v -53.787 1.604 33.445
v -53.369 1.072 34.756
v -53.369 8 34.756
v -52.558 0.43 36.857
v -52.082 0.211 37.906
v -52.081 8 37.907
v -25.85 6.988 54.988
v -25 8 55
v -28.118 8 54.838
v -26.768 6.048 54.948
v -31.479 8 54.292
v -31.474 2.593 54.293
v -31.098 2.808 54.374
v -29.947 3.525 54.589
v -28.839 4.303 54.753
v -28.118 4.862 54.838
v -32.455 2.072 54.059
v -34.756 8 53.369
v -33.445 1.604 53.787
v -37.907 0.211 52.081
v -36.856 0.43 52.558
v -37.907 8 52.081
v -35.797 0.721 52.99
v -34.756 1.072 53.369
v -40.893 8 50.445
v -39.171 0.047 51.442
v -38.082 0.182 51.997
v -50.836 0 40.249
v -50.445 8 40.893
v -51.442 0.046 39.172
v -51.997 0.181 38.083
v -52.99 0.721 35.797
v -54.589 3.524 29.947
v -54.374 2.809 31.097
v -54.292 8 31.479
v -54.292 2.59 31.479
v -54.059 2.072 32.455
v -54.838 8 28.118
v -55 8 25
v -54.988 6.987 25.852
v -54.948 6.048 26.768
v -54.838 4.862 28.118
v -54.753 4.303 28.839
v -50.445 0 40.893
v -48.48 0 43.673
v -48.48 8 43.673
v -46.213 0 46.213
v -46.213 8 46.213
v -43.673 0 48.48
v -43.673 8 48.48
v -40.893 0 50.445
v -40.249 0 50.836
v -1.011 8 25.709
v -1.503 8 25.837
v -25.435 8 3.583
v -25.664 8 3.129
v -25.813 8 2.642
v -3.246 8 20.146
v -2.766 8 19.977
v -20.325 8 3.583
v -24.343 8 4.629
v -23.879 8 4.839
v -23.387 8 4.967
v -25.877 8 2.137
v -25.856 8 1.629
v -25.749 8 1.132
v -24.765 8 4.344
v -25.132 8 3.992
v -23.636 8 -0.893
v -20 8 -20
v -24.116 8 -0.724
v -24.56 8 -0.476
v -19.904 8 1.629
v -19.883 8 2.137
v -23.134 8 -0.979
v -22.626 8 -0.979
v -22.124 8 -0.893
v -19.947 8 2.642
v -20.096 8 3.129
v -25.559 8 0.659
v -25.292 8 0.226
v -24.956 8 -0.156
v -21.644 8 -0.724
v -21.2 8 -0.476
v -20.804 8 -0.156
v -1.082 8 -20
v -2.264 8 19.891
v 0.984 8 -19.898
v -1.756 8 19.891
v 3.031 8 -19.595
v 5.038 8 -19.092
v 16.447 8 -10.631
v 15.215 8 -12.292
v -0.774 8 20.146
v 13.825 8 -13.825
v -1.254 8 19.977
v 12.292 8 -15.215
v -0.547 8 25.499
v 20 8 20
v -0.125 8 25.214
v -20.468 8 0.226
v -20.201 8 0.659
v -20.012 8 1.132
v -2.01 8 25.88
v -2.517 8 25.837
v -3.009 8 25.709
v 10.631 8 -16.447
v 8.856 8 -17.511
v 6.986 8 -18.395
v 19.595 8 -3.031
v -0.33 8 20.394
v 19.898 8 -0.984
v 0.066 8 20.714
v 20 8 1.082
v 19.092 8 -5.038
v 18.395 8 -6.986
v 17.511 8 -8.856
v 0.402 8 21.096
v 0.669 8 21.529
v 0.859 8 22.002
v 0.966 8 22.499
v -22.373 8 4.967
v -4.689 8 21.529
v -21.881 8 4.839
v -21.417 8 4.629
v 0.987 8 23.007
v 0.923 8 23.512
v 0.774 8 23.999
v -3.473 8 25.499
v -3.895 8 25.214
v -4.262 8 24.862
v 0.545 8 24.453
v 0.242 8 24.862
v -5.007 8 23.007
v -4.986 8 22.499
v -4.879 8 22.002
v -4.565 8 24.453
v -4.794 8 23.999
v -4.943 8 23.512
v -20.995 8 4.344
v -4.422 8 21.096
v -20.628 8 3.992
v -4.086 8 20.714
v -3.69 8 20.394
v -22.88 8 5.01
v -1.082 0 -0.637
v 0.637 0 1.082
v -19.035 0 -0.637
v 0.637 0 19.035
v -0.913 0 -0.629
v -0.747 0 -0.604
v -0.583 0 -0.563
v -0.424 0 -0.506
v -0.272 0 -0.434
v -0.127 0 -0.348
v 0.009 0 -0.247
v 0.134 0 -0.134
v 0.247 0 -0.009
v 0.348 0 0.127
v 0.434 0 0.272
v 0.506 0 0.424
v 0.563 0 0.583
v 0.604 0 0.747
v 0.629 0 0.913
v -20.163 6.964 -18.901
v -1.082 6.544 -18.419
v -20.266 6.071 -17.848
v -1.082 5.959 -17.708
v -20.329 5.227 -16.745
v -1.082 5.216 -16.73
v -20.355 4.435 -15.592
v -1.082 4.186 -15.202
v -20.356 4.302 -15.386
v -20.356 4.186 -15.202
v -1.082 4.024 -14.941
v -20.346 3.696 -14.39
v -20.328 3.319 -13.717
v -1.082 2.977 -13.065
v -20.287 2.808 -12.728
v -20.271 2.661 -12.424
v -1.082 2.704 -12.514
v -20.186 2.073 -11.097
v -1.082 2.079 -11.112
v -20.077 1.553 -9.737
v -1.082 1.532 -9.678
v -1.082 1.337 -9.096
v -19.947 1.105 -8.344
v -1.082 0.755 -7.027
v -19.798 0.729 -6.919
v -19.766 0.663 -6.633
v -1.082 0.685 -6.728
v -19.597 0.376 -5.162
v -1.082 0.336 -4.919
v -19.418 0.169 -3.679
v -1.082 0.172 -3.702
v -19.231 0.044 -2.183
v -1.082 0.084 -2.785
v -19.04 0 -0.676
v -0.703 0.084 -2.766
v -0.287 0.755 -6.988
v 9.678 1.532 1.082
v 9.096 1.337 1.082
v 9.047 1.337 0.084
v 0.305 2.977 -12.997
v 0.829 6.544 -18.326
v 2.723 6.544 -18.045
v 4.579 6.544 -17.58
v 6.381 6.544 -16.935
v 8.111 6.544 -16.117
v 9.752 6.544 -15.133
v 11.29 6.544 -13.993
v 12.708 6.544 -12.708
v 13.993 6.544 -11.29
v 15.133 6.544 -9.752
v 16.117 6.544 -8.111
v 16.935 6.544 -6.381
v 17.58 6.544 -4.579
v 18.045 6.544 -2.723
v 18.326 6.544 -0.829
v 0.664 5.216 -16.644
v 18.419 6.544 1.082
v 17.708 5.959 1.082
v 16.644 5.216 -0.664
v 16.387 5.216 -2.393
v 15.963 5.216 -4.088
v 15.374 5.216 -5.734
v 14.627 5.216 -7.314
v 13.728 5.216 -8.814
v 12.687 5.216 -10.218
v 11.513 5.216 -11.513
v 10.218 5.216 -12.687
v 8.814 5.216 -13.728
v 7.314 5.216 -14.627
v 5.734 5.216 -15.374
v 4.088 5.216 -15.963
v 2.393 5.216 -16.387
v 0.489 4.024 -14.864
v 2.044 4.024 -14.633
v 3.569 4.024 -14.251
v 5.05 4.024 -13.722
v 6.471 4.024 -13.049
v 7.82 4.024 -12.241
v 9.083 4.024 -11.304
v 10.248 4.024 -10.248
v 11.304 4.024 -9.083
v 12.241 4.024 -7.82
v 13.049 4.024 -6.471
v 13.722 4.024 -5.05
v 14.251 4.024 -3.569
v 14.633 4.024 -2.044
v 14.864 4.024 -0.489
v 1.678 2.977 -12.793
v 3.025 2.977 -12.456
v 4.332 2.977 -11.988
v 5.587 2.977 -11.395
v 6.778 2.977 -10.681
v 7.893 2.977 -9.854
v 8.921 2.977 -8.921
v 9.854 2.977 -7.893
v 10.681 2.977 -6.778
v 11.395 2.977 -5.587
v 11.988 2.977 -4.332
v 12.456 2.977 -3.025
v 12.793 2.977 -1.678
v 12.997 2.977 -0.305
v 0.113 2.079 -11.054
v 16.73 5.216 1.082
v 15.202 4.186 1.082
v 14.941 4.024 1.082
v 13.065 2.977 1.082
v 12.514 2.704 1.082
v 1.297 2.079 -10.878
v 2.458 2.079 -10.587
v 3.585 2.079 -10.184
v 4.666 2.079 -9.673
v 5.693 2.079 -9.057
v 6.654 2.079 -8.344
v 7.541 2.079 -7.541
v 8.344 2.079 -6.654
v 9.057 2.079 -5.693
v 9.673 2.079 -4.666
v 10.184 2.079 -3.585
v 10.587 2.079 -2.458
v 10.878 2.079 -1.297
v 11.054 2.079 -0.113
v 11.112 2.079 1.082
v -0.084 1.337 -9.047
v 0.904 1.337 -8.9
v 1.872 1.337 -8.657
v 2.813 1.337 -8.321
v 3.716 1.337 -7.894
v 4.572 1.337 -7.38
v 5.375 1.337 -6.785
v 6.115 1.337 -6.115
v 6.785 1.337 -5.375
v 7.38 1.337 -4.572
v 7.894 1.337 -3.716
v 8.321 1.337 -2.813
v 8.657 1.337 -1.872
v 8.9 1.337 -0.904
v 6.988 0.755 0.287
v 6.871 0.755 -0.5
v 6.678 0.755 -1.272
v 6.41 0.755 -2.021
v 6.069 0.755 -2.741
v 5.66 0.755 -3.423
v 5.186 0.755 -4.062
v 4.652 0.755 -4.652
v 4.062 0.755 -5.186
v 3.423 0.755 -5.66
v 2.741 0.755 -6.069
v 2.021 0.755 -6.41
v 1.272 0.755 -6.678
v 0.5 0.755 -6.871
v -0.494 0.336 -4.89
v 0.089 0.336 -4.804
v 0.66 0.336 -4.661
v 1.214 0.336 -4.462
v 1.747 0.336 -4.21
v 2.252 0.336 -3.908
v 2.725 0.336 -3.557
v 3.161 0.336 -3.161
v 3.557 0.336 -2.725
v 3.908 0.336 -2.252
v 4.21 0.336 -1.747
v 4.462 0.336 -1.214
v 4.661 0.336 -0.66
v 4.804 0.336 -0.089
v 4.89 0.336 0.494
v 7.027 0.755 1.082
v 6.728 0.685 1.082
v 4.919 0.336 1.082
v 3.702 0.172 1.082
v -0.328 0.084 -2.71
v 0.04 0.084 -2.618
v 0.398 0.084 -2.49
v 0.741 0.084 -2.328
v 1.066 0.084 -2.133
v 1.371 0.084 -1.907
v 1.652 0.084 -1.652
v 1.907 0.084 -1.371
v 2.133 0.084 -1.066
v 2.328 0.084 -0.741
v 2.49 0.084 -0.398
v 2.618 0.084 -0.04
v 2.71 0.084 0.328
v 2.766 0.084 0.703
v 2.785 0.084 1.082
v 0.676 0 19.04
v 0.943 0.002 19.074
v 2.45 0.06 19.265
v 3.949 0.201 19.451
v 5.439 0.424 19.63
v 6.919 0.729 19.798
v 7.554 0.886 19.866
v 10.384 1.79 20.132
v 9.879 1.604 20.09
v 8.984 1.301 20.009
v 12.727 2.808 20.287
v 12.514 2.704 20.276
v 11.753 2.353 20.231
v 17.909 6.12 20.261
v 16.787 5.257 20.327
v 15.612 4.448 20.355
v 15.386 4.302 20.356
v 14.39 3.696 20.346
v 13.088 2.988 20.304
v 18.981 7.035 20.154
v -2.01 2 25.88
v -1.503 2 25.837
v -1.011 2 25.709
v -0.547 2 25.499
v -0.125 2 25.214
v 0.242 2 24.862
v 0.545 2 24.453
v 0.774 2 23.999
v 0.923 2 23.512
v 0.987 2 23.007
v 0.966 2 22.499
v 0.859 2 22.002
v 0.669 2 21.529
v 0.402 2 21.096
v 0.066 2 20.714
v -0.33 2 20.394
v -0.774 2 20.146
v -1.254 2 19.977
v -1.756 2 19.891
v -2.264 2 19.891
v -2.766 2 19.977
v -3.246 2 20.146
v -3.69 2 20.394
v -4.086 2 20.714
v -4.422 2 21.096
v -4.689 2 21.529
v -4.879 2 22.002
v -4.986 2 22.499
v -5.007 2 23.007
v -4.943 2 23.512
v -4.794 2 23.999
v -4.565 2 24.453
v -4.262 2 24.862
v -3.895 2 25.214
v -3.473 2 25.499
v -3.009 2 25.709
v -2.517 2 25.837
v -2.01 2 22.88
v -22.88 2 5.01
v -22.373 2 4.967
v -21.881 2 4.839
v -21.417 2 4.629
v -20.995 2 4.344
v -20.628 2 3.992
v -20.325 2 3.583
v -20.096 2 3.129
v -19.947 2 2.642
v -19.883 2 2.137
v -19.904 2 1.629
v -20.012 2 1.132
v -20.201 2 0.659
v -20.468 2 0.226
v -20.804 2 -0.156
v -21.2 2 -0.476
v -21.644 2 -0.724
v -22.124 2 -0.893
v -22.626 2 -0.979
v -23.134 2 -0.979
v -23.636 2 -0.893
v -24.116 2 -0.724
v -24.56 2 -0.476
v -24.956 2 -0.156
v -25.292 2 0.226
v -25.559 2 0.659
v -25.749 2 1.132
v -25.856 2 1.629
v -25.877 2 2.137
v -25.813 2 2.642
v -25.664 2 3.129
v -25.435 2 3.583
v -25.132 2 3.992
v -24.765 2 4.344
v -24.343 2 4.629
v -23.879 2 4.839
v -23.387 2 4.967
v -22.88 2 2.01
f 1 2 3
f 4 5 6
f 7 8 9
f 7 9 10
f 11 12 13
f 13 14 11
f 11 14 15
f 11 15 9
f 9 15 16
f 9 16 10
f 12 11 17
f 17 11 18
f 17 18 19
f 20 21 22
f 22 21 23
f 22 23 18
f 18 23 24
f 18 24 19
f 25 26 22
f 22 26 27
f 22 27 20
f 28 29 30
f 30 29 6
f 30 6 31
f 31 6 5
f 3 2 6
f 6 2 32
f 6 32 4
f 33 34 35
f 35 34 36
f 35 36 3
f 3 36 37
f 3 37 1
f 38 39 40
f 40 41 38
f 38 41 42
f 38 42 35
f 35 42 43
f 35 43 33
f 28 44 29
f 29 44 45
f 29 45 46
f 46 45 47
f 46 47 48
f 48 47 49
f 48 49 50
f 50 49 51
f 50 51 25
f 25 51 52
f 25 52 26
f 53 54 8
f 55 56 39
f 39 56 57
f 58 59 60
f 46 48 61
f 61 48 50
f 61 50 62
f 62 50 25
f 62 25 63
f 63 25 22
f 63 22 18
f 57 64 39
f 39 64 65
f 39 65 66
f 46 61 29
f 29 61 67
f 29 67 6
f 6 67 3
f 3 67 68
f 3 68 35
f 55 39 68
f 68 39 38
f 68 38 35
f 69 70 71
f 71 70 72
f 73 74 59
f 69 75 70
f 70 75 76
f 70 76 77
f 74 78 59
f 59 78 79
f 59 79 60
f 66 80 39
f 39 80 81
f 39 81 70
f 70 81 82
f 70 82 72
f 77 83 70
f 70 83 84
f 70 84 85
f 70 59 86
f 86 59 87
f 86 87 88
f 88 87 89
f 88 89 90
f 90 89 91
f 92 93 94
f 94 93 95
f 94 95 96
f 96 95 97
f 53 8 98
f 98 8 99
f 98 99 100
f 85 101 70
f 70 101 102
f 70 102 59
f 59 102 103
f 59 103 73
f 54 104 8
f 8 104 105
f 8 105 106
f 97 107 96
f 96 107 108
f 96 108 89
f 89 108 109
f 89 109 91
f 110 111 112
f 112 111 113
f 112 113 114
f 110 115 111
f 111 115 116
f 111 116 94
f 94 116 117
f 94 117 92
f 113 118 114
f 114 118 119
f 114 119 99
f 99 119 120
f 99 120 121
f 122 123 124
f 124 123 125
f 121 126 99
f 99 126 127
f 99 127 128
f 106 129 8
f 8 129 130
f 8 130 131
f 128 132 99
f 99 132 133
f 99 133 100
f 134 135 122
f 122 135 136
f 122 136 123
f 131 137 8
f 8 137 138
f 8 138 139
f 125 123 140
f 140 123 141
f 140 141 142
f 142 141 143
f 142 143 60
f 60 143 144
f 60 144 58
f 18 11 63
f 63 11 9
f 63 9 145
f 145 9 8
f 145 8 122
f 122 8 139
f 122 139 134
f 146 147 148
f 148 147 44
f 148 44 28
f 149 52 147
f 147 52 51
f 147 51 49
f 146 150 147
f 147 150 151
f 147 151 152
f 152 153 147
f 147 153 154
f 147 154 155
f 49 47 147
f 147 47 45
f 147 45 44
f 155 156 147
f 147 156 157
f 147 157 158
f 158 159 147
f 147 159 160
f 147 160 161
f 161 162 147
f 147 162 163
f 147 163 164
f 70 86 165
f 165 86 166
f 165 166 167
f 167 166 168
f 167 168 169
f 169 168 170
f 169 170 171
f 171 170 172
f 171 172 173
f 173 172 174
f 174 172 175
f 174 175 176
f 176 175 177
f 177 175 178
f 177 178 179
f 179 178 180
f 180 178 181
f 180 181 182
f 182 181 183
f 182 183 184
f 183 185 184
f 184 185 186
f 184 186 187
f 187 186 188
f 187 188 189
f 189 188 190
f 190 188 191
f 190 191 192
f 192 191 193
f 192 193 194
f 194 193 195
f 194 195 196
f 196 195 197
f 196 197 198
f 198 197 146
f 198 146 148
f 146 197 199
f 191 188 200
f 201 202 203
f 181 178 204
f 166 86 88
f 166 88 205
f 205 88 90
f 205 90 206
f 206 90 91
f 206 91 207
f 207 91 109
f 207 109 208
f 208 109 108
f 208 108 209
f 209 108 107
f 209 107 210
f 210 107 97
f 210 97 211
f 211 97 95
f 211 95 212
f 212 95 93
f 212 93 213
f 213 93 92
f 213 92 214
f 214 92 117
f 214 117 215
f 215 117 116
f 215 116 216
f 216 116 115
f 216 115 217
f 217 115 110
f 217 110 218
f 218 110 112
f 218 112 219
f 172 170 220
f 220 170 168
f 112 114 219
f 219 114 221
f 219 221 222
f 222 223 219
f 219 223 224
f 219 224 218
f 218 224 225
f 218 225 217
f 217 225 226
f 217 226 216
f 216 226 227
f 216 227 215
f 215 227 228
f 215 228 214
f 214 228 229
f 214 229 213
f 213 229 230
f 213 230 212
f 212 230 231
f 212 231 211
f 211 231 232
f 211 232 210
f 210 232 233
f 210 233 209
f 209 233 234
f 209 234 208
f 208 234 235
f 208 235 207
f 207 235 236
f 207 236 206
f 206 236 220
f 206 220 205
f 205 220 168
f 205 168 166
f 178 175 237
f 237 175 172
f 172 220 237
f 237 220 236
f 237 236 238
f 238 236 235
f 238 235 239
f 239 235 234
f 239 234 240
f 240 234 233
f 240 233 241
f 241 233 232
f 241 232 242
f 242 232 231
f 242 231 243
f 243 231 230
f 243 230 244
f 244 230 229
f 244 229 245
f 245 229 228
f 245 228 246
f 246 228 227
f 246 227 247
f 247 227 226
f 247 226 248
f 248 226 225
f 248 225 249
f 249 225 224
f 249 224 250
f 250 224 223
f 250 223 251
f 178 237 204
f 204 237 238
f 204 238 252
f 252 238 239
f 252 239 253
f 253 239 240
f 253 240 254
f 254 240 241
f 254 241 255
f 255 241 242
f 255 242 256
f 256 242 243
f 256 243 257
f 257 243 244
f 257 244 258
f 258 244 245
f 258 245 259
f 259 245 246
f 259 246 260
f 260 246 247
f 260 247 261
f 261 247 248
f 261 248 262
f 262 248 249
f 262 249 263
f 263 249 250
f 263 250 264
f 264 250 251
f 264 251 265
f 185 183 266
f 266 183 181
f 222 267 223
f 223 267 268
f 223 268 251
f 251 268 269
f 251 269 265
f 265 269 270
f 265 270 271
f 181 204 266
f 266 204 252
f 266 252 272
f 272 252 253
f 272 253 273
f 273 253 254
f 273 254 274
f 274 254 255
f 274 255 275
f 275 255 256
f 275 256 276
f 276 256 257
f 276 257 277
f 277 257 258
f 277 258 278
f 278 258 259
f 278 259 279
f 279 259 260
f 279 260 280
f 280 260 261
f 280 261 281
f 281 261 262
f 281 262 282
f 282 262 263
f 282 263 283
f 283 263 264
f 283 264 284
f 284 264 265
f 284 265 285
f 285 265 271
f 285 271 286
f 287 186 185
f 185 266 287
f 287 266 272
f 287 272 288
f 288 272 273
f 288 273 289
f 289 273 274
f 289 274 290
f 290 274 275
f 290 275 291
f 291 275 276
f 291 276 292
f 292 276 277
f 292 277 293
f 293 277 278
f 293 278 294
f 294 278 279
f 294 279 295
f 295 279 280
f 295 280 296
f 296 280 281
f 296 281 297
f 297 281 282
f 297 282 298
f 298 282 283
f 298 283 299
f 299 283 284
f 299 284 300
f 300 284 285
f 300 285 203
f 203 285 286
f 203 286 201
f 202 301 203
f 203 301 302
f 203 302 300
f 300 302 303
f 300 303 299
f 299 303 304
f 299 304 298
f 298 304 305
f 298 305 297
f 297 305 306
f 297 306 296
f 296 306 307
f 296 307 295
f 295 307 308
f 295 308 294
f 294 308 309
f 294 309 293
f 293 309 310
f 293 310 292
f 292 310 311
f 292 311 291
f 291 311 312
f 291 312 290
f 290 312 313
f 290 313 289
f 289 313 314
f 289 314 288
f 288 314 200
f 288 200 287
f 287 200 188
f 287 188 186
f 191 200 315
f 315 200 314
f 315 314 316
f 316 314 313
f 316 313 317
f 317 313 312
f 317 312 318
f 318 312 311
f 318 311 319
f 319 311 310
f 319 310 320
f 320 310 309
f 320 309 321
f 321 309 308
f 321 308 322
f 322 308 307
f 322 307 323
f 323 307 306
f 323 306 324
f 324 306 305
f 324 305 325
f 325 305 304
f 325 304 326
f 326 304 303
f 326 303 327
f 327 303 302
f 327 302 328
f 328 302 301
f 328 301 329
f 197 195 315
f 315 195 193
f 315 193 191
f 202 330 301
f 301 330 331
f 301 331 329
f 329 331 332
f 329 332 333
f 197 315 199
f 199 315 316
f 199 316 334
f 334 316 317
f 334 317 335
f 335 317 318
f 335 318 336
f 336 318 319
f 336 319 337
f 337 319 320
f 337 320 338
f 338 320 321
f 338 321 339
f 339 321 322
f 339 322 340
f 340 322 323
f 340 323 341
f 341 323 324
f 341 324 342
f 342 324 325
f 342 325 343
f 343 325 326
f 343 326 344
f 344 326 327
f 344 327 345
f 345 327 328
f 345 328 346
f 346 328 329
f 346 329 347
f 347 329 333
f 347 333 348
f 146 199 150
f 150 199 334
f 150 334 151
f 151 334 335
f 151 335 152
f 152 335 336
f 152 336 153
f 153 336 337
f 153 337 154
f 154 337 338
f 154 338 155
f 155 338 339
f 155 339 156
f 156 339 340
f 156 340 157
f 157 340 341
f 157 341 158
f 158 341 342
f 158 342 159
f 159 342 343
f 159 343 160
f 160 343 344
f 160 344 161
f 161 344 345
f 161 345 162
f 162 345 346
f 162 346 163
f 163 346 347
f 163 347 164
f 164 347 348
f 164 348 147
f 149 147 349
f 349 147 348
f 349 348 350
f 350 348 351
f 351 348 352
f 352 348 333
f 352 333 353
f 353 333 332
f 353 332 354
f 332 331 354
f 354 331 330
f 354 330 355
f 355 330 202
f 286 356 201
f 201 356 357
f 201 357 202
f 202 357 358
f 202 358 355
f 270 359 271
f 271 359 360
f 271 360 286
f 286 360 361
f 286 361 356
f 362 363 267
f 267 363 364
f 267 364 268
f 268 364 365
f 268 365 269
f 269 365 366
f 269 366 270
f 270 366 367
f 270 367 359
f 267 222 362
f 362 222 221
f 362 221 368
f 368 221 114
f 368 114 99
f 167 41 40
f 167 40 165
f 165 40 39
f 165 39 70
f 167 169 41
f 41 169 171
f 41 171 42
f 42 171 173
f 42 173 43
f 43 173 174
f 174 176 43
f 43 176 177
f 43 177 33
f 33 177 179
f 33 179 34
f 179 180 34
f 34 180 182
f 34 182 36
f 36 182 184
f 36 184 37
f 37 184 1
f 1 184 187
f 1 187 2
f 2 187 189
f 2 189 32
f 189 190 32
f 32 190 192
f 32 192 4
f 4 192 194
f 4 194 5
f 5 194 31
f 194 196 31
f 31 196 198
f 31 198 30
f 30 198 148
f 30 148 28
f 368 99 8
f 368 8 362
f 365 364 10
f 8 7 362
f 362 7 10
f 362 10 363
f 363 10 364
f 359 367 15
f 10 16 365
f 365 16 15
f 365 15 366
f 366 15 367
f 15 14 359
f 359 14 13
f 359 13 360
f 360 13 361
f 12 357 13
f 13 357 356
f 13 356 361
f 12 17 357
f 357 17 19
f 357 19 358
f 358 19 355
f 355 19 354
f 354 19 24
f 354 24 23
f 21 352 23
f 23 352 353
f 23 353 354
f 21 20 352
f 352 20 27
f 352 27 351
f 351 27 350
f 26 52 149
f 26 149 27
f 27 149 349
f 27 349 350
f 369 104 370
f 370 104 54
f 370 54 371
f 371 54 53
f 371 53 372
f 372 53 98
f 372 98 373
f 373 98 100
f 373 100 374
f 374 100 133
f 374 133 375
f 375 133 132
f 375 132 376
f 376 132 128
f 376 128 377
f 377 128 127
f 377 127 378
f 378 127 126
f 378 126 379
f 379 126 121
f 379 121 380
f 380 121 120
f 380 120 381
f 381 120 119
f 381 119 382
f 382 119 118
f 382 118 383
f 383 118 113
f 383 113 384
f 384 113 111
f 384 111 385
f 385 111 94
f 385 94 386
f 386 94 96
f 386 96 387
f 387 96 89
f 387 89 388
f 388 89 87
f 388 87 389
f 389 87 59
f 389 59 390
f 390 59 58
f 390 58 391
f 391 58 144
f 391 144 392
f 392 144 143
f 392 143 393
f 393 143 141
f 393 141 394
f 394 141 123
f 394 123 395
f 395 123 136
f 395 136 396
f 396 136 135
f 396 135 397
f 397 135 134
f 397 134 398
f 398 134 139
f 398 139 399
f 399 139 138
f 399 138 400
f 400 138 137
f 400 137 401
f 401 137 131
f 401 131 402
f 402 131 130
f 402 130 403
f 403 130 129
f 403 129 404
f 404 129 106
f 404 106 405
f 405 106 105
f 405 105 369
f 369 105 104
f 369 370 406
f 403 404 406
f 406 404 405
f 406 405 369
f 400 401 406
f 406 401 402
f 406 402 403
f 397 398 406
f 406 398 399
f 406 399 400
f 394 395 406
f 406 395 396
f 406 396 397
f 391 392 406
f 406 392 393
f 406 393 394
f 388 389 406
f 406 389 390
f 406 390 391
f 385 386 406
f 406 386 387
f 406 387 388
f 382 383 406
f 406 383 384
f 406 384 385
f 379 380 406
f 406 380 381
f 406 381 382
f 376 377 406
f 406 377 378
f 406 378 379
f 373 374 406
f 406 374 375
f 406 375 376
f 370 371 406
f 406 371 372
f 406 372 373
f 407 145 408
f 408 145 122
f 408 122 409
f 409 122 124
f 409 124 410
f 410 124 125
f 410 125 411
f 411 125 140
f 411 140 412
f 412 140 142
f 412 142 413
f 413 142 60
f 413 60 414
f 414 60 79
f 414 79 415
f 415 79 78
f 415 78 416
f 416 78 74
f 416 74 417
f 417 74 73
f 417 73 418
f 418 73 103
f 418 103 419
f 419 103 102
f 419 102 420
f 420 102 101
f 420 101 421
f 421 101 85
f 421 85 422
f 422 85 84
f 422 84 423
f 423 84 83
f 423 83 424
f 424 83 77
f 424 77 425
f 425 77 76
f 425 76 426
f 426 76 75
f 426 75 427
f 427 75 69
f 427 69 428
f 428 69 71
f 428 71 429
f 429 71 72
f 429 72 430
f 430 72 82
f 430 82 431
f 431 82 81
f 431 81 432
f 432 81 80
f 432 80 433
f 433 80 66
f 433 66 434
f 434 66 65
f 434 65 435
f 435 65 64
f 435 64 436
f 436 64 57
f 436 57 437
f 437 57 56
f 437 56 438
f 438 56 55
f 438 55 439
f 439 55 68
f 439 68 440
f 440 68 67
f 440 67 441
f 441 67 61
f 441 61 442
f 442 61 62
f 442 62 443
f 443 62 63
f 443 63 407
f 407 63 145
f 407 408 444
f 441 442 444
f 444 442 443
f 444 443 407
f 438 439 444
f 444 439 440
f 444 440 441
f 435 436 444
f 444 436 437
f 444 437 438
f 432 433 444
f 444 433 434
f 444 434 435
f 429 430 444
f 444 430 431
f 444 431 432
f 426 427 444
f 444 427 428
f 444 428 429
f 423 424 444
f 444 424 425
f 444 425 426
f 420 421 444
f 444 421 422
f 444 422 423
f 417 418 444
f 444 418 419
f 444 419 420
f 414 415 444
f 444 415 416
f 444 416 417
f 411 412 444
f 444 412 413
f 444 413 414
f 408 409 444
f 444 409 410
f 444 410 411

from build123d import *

# Parameters (mm, degrees)
BOSS_EXTRUDE1_DEPTH = 8
FILLET1_R           = 27.432
FILLET3_START       = -62.980474595
FILLET3_DEPTH       = 78.103235199
FILLET3_2_DEPTH     = 78.103235199
SKETCH2_R           = 3
CUT_EXTRUDE1_DEPTH  = 6


with BuildPart() as part:
    # Sketch1 → Boss-Extrude1 (new body)
    with BuildSketch(Plane(origin=(0, 0, 0), x_dir=(1, 0, 0), z_dir=(0, 1, 0))):
        with BuildLine():
            Line((-20, 20), (-55, -25))
            ThreePointArc((-55, -25), (-46.213203436, -46.213203436), (-25, -55))
            Line((-25, -55), (20, -20))
            Line((20, -20), (20, -1.082))
            ThreePointArc((20, -1.082), (13.825225161, 13.825225161), (-1.082, 20))
            Line((-1.082, 20), (-20, 20))
        make_face()
    extrude(amount=BOSS_EXTRUDE1_DEPTH)

    # Fillet1
    # the kernel refuses this fillet: 27.432 mm, written as the material it takes off along each edge
    with BuildSketch(Plane(origin=(-1.082, 0, -20), x_dir=(0, 1, 0), z_dir=(-1, 0, 0)), Plane(origin=(20, 0, 68.406611119), x_dir=(0, 1, 0), z_dir=(0, 0, -1))) as fillet1_piece_1:
        with BuildLine():
            CenterArc((27.432, -19.362644447), FILLET1_R, 135.102431051, 44.897568949)
            Line((0, -19.362644447), (-0.54864, -19.362644447))
            Line((-0.54864, -19.362644447), (-0.54864, 0))
            Line((-0.54864, 0), (0, 0.54864))
            ThreePointArc((0, 0.54864), (4, 0.54864), (7.61136, 0.387252889))
            Line((7.61136, 0.387252889), (8, 0))
        make_face()
    extrude(amount=67.324611119, mode=Mode.SUBTRACT)
    with BuildSketch(Plane(origin=(-1.082, 0, 1.082), x_dir=(1, 0, 0), z_dir=(0, 0, 1))) as fillet1_piece_2:
        with BuildLine():
            CenterArc((1.719355553, 27.432), FILLET1_R, 270, 44.897568949)
            Line((1.719355553, 0), (1.719355553, -0.54864))
            Line((1.719355553, -0.54864), (21.082, -0.54864))
            Line((21.082, -0.54864), (21.63064, 0))
            ThreePointArc((21.63064, 0), (21.63064, 4), (21.469252889, 7.61136))
            Line((21.469252889, 7.61136), (21.082, 8))
        make_face()
    revolve(axis=Axis((-1.082, 0, 1.082), (0, 1, 0)), revolution_arc=90, mode=Mode.SUBTRACT)

    # Fillet3: read off the stored shape, not the designer's step
    # Fillet3 outline → Fillet3 (cut)
    with BuildSketch(Plane(origin=(0, 0, 0), x_dir=(0.7893522173763267, 0, 0.6139406135149199), z_dir=(0.6139406135149199, 0, -0.7893522173763268)).offset(FILLET3_START)):
        with BuildLine():
            ThreePointArc((-28.065856618, -8), (-22.900060751, -2.167840434), (-15.416745977, 0))
            Line((-15.416745977, 0), (-28.065856618, 0))
            Line((-28.065856618, 0), (-28.065856618, -8))
        make_face()
    extrude(amount=FILLET3_DEPTH, mode=Mode.SUBTRACT)

    # Fillet3 2 outline → Fillet3 2 (cut)
    with BuildSketch(Plane(origin=(0, 0, 0), x_dir=(0.6139406135149201, 0, 0.7893522173763264), z_dir=(0.7893522173763264, 0, -0.6139406135149204)).offset(FILLET3_START)):
        with BuildLine():
            Line((28.065856618, 0), (15.416745977, 0))
            ThreePointArc((15.416745977, 0), (22.900060751, -2.167840434), (28.065856618, -8))
            Line((28.065856618, -8), (28.065856618, 0))
        make_face()
    extrude(amount=FILLET3_2_DEPTH, mode=Mode.SUBTRACT)

    # Sketch2 → Cut-Extrude1 (cut)
    with BuildSketch(Plane(origin=(0, 8, 0), x_dir=(1, 0, 0), z_dir=(0, 1, 0))):
        with Locations(Location((-22.88, -2.01, 0), (0, 0, 270))):
            Circle(SKETCH2_R)
        with Locations(Location((-2.01, -22.88, 0), (0, 0, 270))):
            Circle(SKETCH2_R)
    extrude(amount=-CUT_EXTRUDE1_DEPTH, mode=Mode.SUBTRACT)


solid = part.part
